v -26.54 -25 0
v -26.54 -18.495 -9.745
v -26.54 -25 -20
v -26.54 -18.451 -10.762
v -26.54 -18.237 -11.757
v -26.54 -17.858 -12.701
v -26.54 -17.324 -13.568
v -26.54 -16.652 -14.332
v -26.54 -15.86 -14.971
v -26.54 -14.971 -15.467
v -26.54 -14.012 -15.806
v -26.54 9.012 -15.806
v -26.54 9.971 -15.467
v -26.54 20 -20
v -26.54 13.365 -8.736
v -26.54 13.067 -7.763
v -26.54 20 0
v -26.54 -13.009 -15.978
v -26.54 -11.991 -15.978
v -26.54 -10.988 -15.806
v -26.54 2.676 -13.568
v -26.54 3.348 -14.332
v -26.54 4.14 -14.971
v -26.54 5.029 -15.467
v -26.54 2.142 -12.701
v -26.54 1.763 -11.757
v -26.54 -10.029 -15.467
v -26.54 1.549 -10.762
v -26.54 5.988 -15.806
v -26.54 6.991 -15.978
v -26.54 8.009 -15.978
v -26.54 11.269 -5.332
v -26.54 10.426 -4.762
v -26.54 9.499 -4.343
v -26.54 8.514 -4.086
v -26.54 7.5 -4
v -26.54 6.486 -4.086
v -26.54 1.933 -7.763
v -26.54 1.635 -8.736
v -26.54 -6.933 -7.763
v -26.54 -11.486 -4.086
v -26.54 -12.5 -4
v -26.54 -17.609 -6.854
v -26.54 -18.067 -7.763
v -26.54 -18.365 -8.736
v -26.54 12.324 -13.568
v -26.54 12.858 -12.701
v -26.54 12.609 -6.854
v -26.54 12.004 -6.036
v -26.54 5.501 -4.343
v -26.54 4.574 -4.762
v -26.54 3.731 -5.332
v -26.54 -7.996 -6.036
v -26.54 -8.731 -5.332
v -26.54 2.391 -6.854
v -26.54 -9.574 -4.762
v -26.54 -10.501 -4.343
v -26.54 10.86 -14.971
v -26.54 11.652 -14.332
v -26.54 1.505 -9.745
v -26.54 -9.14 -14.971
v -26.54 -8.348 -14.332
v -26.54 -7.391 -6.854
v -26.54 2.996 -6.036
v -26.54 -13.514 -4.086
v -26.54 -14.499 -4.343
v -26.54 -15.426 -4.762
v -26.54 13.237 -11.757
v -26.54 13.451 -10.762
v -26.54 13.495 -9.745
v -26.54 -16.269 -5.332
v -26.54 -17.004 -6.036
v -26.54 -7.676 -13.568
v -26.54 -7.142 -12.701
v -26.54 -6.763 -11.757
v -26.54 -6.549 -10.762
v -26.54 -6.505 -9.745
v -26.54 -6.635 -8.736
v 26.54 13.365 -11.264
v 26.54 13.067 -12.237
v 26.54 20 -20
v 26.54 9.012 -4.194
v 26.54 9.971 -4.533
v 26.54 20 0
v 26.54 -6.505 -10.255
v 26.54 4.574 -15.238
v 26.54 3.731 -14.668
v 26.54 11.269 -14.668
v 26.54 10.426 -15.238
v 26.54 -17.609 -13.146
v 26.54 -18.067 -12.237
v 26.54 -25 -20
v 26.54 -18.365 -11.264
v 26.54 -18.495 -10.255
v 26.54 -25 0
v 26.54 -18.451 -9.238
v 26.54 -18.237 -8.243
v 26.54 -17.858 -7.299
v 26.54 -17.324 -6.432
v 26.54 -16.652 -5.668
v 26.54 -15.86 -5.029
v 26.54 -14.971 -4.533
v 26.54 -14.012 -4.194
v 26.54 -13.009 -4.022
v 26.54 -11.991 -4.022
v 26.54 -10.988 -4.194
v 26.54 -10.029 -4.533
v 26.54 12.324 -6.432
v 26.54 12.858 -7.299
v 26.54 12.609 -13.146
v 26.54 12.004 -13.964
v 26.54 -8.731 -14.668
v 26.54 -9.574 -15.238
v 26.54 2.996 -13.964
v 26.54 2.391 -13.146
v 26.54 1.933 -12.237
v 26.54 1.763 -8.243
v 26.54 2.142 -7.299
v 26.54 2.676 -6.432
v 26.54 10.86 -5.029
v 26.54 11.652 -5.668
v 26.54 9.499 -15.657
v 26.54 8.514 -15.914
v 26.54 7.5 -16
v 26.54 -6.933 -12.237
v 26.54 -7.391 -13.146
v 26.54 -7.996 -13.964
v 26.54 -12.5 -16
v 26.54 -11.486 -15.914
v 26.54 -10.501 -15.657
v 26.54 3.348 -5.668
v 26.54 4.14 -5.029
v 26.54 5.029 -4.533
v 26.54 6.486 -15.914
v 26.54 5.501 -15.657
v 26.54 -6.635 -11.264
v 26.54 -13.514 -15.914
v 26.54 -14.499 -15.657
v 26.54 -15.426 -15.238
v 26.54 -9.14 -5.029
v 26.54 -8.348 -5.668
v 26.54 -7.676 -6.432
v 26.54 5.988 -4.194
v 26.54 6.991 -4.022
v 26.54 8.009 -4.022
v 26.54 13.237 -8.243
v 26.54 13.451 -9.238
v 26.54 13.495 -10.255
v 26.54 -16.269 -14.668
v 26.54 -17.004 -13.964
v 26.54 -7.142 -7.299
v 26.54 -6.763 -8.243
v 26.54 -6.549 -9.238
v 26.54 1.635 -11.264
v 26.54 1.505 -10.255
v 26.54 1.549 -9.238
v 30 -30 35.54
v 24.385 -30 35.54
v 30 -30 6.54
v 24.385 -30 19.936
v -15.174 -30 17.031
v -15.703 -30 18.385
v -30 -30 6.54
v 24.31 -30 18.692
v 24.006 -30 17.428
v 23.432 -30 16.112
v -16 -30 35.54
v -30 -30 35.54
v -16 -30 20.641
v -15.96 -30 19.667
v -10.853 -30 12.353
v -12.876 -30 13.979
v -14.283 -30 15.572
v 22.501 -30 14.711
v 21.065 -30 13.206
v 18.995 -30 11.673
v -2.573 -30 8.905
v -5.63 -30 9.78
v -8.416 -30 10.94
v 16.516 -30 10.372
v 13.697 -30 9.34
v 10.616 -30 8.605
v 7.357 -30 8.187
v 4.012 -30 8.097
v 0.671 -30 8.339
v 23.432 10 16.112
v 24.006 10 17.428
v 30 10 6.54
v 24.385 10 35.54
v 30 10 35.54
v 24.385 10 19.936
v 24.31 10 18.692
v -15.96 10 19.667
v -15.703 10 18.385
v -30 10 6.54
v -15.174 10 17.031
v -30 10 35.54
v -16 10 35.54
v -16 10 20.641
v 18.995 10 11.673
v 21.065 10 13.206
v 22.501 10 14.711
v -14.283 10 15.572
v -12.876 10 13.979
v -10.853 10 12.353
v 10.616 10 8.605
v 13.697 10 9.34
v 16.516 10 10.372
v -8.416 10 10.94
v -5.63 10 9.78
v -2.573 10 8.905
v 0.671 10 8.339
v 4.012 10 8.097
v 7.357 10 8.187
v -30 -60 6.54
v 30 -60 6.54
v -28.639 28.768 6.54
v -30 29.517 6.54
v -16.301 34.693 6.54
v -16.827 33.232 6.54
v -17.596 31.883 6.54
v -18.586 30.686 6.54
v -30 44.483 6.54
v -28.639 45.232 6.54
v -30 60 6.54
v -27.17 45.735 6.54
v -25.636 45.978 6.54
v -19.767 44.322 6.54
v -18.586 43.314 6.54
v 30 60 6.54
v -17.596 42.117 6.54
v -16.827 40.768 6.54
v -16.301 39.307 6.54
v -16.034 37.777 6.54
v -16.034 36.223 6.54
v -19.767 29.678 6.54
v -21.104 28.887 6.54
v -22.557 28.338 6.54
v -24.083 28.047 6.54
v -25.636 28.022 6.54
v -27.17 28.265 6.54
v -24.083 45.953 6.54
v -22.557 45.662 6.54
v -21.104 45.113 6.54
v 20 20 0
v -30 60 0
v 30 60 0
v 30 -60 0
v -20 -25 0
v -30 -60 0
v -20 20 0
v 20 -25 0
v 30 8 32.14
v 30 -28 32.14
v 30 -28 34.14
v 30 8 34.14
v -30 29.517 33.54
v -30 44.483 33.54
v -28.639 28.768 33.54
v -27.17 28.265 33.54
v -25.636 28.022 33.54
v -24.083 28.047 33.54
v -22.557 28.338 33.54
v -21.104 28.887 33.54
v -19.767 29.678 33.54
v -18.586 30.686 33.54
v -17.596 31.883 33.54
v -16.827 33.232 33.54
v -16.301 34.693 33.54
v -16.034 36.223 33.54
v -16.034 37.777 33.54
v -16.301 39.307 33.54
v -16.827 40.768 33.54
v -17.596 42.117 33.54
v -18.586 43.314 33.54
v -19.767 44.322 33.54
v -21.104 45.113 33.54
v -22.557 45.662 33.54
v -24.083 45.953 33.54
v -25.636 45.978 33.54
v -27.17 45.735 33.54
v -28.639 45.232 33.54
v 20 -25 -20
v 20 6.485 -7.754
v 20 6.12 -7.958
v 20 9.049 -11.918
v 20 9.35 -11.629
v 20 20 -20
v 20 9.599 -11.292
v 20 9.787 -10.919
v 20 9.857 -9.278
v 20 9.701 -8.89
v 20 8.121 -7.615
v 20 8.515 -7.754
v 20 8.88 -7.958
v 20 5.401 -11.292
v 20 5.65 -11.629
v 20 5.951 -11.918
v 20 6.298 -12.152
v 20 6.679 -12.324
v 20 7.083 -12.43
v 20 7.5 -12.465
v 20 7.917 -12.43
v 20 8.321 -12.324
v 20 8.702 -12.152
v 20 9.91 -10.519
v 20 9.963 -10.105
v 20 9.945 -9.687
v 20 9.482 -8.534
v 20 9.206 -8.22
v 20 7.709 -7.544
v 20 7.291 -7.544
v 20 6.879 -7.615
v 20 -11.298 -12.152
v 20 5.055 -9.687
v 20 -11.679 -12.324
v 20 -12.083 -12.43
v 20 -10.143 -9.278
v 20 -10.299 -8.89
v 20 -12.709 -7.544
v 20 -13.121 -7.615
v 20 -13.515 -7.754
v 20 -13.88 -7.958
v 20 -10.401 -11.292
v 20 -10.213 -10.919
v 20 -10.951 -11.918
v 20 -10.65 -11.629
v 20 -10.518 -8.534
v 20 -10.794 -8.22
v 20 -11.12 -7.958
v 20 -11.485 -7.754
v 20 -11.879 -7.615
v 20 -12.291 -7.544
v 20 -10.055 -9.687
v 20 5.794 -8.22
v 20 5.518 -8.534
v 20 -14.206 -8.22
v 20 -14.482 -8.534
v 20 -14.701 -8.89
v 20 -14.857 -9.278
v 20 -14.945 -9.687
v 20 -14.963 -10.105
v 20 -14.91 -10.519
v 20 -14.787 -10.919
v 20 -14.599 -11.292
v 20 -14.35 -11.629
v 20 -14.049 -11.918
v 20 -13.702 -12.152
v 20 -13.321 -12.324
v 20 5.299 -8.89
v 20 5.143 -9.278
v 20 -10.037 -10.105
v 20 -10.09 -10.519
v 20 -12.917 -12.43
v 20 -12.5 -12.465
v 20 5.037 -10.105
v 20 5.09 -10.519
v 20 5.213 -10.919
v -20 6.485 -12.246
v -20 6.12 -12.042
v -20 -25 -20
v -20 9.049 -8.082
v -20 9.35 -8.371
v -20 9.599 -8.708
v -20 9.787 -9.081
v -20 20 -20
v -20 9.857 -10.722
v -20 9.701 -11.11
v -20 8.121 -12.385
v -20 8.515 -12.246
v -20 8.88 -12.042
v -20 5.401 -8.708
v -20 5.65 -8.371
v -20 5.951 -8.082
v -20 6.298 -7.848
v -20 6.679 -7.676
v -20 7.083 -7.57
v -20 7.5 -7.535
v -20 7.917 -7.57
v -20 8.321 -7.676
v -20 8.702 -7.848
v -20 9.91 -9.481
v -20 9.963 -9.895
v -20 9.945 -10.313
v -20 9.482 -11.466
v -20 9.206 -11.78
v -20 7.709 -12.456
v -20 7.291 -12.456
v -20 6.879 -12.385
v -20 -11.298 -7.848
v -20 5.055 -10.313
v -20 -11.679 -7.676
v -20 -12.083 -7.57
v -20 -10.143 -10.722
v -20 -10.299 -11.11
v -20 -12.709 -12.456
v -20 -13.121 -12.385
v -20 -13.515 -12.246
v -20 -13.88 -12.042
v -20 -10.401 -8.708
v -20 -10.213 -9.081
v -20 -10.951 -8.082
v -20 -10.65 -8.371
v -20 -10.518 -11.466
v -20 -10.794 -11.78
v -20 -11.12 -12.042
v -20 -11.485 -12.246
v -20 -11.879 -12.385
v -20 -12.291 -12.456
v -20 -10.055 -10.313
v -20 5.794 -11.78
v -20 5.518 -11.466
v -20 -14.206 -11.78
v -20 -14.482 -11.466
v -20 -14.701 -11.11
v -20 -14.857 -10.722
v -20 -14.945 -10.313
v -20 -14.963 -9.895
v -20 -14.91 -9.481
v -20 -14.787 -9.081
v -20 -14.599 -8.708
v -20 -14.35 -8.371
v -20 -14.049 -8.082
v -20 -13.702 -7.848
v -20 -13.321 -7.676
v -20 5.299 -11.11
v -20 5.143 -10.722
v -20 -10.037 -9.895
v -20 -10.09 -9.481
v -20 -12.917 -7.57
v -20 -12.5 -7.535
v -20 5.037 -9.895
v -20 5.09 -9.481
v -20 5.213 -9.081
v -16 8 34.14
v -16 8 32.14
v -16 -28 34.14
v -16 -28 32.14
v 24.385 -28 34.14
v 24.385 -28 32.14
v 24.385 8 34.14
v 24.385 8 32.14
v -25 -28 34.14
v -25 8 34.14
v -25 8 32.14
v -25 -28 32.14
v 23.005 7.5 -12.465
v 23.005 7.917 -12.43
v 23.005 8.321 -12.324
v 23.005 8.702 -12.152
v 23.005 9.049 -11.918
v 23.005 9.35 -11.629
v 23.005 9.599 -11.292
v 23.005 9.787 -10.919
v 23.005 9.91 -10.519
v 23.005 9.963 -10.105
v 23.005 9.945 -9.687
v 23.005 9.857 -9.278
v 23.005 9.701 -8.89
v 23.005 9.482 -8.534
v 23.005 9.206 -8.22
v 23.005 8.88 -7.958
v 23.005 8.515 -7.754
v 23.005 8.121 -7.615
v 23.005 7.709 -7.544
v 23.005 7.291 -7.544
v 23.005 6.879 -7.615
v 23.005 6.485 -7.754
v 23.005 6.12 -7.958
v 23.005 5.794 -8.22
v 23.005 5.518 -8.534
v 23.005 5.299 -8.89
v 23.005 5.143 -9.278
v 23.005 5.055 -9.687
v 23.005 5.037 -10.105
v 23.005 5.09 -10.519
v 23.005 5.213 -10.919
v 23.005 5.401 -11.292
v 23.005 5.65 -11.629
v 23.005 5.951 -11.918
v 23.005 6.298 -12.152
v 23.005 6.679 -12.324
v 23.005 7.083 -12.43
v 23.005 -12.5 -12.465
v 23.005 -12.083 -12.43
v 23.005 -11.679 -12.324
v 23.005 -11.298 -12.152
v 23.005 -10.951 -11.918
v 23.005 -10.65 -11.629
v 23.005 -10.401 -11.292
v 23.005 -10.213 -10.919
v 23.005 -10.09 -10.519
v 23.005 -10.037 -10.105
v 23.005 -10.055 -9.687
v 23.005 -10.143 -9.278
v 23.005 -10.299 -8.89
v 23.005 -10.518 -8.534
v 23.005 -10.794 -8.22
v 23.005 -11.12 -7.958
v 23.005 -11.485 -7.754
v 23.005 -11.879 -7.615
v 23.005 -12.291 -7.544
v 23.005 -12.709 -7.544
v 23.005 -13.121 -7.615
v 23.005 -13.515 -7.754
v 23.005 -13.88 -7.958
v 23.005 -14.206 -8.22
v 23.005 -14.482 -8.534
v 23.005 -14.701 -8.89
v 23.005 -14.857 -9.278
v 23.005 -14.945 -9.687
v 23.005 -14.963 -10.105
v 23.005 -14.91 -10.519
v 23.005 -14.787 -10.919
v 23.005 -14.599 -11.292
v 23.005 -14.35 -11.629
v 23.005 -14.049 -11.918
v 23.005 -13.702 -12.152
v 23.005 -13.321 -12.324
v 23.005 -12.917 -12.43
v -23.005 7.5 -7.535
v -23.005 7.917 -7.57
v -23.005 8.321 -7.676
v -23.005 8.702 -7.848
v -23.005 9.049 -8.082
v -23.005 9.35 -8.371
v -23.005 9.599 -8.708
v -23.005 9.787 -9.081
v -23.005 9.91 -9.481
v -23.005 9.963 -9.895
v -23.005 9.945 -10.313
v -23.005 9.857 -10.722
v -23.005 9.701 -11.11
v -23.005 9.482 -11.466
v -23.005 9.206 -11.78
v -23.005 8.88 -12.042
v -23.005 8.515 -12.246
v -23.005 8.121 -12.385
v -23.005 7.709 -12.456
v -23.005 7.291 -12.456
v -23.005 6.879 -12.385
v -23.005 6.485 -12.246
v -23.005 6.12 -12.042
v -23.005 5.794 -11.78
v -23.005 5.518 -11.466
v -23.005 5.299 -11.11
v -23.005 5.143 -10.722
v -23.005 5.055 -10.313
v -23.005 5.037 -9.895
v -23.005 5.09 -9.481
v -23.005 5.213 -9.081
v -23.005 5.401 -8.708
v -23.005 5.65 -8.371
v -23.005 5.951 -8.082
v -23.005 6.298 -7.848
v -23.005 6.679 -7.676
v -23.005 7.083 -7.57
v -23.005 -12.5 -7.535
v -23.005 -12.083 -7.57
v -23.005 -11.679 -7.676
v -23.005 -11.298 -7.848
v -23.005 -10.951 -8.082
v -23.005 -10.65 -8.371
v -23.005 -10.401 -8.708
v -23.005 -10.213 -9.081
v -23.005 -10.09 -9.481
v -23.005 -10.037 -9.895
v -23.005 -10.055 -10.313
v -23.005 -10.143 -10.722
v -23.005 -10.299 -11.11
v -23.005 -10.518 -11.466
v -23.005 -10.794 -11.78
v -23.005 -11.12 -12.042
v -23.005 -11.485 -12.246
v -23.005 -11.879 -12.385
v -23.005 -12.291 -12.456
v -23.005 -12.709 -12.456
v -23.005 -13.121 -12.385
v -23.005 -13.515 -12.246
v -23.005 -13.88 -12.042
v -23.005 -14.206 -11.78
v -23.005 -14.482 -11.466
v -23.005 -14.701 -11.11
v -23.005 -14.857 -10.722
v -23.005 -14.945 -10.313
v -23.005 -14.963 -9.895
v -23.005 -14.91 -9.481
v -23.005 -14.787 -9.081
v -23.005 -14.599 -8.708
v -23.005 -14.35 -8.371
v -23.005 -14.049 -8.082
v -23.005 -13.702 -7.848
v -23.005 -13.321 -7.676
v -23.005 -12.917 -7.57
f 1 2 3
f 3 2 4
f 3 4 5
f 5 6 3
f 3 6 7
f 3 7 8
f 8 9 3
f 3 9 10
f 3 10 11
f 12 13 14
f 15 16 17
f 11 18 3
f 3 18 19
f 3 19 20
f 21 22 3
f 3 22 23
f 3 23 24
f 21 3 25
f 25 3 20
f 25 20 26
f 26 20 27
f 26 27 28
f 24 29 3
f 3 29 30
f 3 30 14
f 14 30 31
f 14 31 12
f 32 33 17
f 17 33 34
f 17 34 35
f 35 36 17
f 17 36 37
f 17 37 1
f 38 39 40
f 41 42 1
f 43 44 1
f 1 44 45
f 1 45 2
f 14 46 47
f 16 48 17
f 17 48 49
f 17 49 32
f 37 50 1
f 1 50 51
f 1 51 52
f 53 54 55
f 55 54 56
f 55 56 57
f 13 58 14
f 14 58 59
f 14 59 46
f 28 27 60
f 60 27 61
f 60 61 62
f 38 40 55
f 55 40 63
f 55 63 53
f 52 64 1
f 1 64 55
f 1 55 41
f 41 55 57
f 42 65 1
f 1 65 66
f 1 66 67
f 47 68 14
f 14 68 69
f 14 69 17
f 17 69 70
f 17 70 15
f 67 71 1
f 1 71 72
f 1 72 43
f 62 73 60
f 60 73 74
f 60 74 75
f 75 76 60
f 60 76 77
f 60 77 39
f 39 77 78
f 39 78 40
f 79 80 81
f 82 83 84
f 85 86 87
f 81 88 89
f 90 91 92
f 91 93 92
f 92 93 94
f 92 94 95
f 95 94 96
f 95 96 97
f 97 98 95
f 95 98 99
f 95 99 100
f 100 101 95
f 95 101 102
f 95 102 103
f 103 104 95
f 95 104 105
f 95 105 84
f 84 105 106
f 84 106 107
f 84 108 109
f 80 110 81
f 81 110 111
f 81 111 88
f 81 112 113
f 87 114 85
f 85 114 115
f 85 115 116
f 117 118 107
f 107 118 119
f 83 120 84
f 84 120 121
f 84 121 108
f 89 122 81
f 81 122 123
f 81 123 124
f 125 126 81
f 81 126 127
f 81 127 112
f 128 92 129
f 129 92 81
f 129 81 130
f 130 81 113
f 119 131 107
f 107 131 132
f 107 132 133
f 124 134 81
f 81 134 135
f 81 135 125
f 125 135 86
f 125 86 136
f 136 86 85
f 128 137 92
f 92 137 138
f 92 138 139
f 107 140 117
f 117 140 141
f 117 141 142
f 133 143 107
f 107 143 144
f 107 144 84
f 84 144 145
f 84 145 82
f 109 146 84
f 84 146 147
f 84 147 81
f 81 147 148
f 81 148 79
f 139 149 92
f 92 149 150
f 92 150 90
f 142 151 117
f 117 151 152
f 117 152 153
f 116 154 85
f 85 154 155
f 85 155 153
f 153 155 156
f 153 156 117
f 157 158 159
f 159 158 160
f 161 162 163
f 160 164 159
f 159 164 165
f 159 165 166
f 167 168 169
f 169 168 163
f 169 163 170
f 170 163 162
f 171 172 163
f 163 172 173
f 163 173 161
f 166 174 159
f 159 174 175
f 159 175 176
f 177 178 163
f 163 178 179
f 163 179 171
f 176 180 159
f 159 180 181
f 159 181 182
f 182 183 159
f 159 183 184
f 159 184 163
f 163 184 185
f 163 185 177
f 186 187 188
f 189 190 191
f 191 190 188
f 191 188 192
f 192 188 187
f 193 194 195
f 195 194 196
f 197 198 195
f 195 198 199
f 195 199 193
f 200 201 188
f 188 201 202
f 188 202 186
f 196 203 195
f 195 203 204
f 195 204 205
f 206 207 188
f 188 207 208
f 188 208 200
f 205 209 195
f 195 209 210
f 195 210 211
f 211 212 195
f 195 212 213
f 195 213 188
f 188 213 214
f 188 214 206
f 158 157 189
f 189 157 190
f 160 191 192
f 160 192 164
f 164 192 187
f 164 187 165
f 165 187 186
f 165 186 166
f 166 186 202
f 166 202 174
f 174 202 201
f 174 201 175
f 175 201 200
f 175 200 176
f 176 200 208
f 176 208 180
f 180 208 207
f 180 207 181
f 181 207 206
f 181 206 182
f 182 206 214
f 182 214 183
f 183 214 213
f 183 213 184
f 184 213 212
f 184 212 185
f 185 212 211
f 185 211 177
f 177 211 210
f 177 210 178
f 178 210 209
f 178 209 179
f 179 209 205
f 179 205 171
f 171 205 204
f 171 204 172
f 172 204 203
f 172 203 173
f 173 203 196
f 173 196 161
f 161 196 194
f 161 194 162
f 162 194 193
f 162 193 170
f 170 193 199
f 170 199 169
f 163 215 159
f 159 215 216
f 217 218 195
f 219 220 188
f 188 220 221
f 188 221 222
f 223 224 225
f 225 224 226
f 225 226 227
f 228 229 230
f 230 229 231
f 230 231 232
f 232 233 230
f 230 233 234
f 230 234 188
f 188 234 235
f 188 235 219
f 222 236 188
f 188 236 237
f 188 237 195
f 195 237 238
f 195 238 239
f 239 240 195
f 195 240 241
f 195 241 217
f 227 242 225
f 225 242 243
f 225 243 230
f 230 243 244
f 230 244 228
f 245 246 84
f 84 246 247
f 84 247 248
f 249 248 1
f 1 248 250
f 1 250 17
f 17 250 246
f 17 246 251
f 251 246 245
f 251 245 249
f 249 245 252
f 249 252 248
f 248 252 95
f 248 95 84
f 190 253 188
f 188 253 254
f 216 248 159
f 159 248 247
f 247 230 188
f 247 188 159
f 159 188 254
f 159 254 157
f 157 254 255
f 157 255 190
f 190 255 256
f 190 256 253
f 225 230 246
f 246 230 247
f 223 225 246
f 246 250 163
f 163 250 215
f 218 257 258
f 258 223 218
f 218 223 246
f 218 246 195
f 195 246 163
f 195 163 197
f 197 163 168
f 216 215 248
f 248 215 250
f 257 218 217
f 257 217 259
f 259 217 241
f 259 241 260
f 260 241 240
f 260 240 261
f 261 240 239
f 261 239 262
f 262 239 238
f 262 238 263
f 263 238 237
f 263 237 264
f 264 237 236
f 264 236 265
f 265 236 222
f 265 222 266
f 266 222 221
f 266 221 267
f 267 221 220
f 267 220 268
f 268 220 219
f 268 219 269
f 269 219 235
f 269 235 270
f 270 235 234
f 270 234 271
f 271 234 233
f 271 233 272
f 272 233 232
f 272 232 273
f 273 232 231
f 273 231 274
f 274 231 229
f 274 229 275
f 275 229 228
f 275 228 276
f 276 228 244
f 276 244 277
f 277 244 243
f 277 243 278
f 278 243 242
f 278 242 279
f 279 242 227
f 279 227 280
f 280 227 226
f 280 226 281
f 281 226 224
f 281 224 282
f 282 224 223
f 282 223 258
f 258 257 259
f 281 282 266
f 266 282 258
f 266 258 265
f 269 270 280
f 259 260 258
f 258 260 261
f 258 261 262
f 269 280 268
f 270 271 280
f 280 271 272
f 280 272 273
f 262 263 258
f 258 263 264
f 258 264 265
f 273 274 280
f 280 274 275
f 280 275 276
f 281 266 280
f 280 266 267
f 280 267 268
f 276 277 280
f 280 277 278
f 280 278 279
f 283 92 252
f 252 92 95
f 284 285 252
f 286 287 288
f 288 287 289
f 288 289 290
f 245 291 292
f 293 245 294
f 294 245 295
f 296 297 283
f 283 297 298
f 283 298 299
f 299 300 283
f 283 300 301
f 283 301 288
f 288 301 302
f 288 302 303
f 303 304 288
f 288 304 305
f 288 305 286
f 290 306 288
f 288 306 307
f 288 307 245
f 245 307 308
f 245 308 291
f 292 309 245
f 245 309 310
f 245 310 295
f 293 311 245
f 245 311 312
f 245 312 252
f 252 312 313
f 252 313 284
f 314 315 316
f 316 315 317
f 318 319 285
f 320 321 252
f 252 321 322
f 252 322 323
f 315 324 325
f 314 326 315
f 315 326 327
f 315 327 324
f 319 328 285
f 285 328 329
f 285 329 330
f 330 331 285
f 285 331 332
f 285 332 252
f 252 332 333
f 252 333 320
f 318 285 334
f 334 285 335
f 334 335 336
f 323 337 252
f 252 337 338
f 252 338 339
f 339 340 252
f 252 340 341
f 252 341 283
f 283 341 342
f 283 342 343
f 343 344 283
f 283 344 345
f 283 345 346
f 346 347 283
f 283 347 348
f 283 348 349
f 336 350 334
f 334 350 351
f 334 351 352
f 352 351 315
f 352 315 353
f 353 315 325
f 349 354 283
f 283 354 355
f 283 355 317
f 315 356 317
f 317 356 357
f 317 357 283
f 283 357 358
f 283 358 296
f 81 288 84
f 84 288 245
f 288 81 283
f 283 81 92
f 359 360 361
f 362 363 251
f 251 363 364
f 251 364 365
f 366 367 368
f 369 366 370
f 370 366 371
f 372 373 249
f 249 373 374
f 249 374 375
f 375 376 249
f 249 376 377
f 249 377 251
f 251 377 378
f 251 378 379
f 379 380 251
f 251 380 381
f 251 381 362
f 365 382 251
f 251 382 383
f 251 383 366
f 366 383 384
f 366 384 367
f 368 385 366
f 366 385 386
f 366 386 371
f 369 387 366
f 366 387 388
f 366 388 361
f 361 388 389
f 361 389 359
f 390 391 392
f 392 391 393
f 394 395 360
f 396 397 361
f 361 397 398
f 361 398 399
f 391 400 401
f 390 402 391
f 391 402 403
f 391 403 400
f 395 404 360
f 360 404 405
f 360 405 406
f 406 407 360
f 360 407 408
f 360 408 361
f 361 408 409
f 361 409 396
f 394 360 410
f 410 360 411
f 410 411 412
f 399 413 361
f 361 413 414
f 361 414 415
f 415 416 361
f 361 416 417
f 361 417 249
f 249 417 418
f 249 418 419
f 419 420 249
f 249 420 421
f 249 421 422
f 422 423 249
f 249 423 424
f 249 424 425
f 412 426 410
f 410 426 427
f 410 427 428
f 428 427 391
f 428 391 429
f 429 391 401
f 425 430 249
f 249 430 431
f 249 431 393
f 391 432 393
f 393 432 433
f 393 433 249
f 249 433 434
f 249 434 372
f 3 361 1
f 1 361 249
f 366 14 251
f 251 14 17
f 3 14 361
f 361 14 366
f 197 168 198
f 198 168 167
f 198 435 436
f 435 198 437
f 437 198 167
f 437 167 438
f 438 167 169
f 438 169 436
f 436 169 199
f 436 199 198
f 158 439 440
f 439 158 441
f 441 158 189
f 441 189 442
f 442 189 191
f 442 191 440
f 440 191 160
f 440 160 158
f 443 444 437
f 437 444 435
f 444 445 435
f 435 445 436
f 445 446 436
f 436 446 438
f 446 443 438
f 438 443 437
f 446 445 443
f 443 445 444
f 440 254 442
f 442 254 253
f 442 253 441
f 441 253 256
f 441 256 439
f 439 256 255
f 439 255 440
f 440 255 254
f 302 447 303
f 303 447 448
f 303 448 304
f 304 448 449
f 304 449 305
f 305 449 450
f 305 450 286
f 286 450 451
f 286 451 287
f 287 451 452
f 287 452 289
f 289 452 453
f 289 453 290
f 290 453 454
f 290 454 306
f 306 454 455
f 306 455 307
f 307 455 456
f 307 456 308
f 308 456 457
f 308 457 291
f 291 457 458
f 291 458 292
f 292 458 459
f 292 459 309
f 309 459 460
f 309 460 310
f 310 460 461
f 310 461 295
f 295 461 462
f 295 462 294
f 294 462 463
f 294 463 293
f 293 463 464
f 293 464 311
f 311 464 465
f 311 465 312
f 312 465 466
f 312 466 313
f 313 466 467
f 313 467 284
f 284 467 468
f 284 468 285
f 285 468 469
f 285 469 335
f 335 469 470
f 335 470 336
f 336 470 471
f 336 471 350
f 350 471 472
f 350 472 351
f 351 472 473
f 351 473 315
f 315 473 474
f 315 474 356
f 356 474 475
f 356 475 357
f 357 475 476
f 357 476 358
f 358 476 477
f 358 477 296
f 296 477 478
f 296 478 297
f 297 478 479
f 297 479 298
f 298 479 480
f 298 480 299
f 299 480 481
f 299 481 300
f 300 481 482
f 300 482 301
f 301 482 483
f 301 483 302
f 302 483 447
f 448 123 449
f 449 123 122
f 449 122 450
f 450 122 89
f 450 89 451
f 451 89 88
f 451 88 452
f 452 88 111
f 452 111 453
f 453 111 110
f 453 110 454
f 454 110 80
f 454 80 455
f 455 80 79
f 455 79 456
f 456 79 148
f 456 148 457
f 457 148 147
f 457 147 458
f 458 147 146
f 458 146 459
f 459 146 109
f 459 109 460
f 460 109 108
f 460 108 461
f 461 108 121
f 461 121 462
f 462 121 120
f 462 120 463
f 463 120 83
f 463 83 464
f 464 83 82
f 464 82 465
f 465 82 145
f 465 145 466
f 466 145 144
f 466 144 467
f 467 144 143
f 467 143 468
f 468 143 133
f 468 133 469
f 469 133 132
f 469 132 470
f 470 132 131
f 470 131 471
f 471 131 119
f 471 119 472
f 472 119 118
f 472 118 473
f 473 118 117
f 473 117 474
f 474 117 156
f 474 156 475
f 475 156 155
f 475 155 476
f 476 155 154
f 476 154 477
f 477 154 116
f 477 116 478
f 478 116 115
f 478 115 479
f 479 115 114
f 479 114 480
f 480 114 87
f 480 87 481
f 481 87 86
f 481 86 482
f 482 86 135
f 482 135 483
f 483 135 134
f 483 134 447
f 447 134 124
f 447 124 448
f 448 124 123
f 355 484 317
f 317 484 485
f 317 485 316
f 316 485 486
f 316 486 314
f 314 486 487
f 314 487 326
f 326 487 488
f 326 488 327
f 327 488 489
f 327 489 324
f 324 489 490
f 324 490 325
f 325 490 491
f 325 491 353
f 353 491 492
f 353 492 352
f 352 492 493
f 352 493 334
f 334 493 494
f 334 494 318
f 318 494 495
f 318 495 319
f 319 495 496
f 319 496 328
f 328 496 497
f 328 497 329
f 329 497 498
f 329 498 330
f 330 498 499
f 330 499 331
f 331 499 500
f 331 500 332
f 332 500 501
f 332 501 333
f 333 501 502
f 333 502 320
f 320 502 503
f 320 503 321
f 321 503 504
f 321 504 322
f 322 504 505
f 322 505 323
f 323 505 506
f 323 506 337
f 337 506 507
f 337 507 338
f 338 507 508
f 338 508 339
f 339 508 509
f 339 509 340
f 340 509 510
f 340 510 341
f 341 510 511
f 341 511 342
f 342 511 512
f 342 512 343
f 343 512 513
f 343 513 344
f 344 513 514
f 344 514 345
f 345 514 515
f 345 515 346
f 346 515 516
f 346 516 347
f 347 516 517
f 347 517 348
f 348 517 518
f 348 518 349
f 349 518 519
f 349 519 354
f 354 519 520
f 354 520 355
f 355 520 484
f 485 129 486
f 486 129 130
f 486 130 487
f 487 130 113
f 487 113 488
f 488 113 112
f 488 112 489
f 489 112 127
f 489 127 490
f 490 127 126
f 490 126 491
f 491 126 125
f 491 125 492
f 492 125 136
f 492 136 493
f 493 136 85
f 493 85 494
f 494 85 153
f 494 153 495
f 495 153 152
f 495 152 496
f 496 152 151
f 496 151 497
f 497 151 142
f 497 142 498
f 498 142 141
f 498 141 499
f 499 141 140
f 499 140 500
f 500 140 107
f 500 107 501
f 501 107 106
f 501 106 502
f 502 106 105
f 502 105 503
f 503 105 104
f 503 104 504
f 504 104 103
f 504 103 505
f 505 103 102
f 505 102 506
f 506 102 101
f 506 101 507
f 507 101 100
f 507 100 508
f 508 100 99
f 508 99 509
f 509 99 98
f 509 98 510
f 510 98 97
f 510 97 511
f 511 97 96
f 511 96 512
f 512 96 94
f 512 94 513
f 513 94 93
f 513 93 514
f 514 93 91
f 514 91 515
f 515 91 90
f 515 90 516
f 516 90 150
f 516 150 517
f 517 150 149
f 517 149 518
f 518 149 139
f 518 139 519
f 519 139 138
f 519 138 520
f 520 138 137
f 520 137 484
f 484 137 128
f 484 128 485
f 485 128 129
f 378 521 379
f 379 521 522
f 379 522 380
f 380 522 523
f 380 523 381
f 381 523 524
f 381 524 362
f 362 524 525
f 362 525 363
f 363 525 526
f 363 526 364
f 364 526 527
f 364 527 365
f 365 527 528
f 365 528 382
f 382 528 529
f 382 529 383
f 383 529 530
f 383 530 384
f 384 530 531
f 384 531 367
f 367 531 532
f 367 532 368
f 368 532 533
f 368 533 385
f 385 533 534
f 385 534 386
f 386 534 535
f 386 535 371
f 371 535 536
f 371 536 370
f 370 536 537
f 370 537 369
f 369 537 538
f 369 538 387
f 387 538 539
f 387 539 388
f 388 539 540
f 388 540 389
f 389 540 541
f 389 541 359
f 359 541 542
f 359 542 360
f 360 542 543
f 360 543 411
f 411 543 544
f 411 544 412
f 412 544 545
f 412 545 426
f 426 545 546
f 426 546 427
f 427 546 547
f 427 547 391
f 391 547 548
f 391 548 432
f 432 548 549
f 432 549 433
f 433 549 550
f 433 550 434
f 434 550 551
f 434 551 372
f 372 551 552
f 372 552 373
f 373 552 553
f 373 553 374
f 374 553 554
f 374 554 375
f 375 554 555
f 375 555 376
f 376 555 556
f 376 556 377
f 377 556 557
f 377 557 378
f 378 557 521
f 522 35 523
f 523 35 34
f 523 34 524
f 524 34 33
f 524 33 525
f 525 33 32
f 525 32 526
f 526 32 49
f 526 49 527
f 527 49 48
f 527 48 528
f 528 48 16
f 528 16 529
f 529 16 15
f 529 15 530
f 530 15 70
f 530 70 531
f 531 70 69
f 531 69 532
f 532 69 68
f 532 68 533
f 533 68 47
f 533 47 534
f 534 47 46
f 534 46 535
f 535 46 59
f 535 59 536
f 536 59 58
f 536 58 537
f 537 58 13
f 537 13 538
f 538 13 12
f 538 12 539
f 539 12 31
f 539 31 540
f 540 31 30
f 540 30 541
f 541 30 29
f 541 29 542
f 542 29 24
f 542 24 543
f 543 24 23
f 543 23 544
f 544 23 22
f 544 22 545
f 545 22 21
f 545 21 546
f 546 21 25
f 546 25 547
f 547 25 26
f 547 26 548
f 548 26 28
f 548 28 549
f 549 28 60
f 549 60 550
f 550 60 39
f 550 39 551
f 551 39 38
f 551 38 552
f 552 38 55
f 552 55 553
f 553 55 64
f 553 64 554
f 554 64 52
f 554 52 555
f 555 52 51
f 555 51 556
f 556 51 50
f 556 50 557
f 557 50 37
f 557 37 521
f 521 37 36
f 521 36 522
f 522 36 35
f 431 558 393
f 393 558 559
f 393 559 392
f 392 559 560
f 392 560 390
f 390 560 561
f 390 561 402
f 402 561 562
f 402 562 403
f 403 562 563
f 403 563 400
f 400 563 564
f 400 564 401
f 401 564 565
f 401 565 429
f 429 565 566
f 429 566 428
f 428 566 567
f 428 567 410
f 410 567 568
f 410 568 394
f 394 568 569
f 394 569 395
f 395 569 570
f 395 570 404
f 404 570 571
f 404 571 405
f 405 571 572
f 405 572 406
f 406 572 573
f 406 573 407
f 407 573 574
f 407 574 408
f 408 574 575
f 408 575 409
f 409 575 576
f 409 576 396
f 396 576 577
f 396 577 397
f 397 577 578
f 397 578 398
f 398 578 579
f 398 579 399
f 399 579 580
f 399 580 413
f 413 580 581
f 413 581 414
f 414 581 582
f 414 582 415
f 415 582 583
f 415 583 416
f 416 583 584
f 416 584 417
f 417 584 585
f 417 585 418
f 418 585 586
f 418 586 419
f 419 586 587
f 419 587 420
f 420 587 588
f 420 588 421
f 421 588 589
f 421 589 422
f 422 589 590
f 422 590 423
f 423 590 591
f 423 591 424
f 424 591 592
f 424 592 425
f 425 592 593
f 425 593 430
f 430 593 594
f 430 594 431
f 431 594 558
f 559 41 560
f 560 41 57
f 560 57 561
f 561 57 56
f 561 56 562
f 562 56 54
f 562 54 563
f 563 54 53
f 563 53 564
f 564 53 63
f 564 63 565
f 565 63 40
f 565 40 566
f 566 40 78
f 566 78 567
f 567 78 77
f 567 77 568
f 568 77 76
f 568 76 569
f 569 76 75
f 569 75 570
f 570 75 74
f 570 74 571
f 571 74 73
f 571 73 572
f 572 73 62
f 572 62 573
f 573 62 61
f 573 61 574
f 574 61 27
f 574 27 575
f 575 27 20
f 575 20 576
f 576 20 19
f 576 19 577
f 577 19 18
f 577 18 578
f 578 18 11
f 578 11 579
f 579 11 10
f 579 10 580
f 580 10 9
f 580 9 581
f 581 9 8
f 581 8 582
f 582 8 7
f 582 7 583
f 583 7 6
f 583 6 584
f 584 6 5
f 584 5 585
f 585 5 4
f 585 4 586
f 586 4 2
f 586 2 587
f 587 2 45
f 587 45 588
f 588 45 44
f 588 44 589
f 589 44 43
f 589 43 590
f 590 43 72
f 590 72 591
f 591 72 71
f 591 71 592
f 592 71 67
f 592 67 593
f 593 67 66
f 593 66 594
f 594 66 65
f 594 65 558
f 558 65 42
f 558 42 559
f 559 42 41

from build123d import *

# Parameters (mm, degrees)
SKETCH1_W                                       = 60
SKETCH1_H                                       = 120
BOSS_EXTRUDE1_DEPTH                             = 6.54
BOSS_EXTRUDE4_DEPTH                             = 27
SKETCH10_W                                      = 6.54
SKETCH10_H                                      = 45
BOSS_EXTRUDE5_DEPTH                             = 20
SKETCH17_W                                      = 60
SKETCH17_H                                      = 40
BOSS_EXTRUDE6_DEPTH                             = 29
CUT_EXTRUDE1_REACH                              = 72
SKETCH18_RX                                     = 20.2
SKETCH18_RY                                     = 12
CUT_EXTRUDE2_REACH                              = 57.54
SKETCH21_W                                      = 40.3853088
SKETCH21_H                                      = 40
SKETCH23_W                                      = 2
SKETCH23_H                                      = 36
CUT_EXTRUDE3_DEPTH                              = 9
SKETCH24_W                                      = 2
SKETCH24_H                                      = 36
CUT_EXTRUDE4_DEPTH                              = 9
CSK_FOR_M3_FLAT_HEAD_MACHINE_SCREW4_D           = 4.93
CSK_FOR_M3_FLAT_HEAD_MACHINE_SCREW4_DEPTH       = 6.54
CSK_FOR_M3_FLAT_HEAD_MACHINE_SCREW4_CSINK_D     = 12
CSK_FOR_M3_FLAT_HEAD_MACHINE_SCREW4_CSINK_ANGLE = 90
CSK_FOR_M3_FLAT_HEAD_MACHINE_SCREW5_D           = 4.93
CSK_FOR_M3_FLAT_HEAD_MACHINE_SCREW5_DEPTH       = 6.54
CSK_FOR_M3_FLAT_HEAD_MACHINE_SCREW5_CSINK_D     = 12
CSK_FOR_M3_FLAT_HEAD_MACHINE_SCREW5_CSINK_ANGLE = 90


with BuildPart() as part:
    # Sketch1 → Boss-Extrude1 (new body)
    with BuildSketch(Plane.XY):
        Rectangle(SKETCH1_W, SKETCH1_H)
    extrude(amount=BOSS_EXTRUDE1_DEPTH)

    # Sketch7 → Boss-Extrude4 (add)
    with BuildSketch(Plane.XY.offset(6.54)):
        with BuildLine():
            Line((-30, 44.483314774), (-30, 29.516685226))
            ThreePointArc((-30, 29.516685226), (-16, 37), (-30, 44.483314774))
        make_face()
    extrude(amount=BOSS_EXTRUDE4_DEPTH)

    # Sketch10 → Boss-Extrude5 (add)
    with BuildSketch(Plane(origin=(0, 0, 0), x_dir=(-1, 0, 0), z_dir=(0, 0, -1))):
        with Locations((23.27, -2.5)):
            Rectangle(SKETCH10_W, SKETCH10_H)
        with Locations((-23.27, -2.5)):
            Rectangle(SKETCH10_W, SKETCH10_H)
    extrude(amount=BOSS_EXTRUDE5_DEPTH)

    # Sketch17 → Boss-Extrude6 (add)
    with BuildSketch(Plane.XY.offset(6.54)):
        with Locations((0, -10)):
            Rectangle(SKETCH17_W, SKETCH17_H)
    extrude(amount=BOSS_EXTRUDE6_DEPTH)

    # Sketch18 → Cut-Extrude1 (cut, up to next)
    with BuildSketch(Plane(origin=(0, 10, 0), x_dir=(1, 0, 0), z_dir=(0, 1, 0)), mode=Mode.PRIVATE) as cut_extrude1_sk1:
        with Locations(Location((4.192654401, -20.096314851), (0, 0, 1.545214336))):
            Ellipse(SKETCH18_RX, SKETCH18_RY)
    cut_extrude1_tool1 = extrude(cut_extrude1_sk1.sketch, amount=-CUT_EXTRUDE1_REACH, mode=Mode.PRIVATE) & part.part
    add(cut_extrude1_tool1.solids().sort_by_distance((4.192654, 10, 20.096315))[0], mode=Mode.SUBTRACT)

    # Sketch21 → Cut-Extrude2 (cut, up to next)
    with BuildSketch(Plane.XY.offset(35.54), mode=Mode.PRIVATE) as cut_extrude2_sk1:
        with Locations((4.1926544, -10)):
            Rectangle(SKETCH21_W, SKETCH21_H)
    cut_extrude2_tool1 = extrude(cut_extrude2_sk1.sketch, amount=-CUT_EXTRUDE2_REACH, mode=Mode.PRIVATE) & part.part
    add(cut_extrude2_tool1.solids().sort_by_distance((4.192654, -10, 35.54))[0], mode=Mode.SUBTRACT)

    # Sketch23 → Cut-Extrude3 (cut)
    with BuildSketch(Plane(origin=(-16, 0, 0), x_dir=(0, 0, -1), z_dir=(1, 0, 0))):
        with Locations((-33.14, -10)):
            Rectangle(SKETCH23_W, SKETCH23_H)
    extrude(amount=-CUT_EXTRUDE3_DEPTH, mode=Mode.SUBTRACT)

    # Sketch24 → Cut-Extrude4 (cut)
    with BuildSketch(Plane.ZY.offset(-24.3853088)):
        with Locations((33.14, -10)):
            Rectangle(SKETCH24_W, SKETCH24_H)
    extrude(amount=-CUT_EXTRUDE4_DEPTH, mode=Mode.SUBTRACT)

    # CSK for M3 Flat Head Machine Screw4
    with Locations(Plane(origin=(26.54, -12.5, -10), x_dir=(0, 1, 0), z_dir=(1, 0, 0))):
        with Locations((0, 0), (20, 0)):
            CounterSinkHole(CSK_FOR_M3_FLAT_HEAD_MACHINE_SCREW4_D / 2, CSK_FOR_M3_FLAT_HEAD_MACHINE_SCREW4_CSINK_D / 2, depth=CSK_FOR_M3_FLAT_HEAD_MACHINE_SCREW4_DEPTH, counter_sink_angle=CSK_FOR_M3_FLAT_HEAD_MACHINE_SCREW4_CSINK_ANGLE)

    # CSK for M3 Flat Head Machine Screw5
    with Locations(Plane(origin=(-26.54, -12.5, -10), x_dir=(0, -1, 0), z_dir=(-1, 0, 0))):
        with Locations((0, 0), (-20, 0)):
            CounterSinkHole(CSK_FOR_M3_FLAT_HEAD_MACHINE_SCREW5_D / 2, CSK_FOR_M3_FLAT_HEAD_MACHINE_SCREW5_CSINK_D / 2, depth=CSK_FOR_M3_FLAT_HEAD_MACHINE_SCREW5_DEPTH, counter_sink_angle=CSK_FOR_M3_FLAT_HEAD_MACHINE_SCREW5_CSINK_ANGLE)


solid = part.part
